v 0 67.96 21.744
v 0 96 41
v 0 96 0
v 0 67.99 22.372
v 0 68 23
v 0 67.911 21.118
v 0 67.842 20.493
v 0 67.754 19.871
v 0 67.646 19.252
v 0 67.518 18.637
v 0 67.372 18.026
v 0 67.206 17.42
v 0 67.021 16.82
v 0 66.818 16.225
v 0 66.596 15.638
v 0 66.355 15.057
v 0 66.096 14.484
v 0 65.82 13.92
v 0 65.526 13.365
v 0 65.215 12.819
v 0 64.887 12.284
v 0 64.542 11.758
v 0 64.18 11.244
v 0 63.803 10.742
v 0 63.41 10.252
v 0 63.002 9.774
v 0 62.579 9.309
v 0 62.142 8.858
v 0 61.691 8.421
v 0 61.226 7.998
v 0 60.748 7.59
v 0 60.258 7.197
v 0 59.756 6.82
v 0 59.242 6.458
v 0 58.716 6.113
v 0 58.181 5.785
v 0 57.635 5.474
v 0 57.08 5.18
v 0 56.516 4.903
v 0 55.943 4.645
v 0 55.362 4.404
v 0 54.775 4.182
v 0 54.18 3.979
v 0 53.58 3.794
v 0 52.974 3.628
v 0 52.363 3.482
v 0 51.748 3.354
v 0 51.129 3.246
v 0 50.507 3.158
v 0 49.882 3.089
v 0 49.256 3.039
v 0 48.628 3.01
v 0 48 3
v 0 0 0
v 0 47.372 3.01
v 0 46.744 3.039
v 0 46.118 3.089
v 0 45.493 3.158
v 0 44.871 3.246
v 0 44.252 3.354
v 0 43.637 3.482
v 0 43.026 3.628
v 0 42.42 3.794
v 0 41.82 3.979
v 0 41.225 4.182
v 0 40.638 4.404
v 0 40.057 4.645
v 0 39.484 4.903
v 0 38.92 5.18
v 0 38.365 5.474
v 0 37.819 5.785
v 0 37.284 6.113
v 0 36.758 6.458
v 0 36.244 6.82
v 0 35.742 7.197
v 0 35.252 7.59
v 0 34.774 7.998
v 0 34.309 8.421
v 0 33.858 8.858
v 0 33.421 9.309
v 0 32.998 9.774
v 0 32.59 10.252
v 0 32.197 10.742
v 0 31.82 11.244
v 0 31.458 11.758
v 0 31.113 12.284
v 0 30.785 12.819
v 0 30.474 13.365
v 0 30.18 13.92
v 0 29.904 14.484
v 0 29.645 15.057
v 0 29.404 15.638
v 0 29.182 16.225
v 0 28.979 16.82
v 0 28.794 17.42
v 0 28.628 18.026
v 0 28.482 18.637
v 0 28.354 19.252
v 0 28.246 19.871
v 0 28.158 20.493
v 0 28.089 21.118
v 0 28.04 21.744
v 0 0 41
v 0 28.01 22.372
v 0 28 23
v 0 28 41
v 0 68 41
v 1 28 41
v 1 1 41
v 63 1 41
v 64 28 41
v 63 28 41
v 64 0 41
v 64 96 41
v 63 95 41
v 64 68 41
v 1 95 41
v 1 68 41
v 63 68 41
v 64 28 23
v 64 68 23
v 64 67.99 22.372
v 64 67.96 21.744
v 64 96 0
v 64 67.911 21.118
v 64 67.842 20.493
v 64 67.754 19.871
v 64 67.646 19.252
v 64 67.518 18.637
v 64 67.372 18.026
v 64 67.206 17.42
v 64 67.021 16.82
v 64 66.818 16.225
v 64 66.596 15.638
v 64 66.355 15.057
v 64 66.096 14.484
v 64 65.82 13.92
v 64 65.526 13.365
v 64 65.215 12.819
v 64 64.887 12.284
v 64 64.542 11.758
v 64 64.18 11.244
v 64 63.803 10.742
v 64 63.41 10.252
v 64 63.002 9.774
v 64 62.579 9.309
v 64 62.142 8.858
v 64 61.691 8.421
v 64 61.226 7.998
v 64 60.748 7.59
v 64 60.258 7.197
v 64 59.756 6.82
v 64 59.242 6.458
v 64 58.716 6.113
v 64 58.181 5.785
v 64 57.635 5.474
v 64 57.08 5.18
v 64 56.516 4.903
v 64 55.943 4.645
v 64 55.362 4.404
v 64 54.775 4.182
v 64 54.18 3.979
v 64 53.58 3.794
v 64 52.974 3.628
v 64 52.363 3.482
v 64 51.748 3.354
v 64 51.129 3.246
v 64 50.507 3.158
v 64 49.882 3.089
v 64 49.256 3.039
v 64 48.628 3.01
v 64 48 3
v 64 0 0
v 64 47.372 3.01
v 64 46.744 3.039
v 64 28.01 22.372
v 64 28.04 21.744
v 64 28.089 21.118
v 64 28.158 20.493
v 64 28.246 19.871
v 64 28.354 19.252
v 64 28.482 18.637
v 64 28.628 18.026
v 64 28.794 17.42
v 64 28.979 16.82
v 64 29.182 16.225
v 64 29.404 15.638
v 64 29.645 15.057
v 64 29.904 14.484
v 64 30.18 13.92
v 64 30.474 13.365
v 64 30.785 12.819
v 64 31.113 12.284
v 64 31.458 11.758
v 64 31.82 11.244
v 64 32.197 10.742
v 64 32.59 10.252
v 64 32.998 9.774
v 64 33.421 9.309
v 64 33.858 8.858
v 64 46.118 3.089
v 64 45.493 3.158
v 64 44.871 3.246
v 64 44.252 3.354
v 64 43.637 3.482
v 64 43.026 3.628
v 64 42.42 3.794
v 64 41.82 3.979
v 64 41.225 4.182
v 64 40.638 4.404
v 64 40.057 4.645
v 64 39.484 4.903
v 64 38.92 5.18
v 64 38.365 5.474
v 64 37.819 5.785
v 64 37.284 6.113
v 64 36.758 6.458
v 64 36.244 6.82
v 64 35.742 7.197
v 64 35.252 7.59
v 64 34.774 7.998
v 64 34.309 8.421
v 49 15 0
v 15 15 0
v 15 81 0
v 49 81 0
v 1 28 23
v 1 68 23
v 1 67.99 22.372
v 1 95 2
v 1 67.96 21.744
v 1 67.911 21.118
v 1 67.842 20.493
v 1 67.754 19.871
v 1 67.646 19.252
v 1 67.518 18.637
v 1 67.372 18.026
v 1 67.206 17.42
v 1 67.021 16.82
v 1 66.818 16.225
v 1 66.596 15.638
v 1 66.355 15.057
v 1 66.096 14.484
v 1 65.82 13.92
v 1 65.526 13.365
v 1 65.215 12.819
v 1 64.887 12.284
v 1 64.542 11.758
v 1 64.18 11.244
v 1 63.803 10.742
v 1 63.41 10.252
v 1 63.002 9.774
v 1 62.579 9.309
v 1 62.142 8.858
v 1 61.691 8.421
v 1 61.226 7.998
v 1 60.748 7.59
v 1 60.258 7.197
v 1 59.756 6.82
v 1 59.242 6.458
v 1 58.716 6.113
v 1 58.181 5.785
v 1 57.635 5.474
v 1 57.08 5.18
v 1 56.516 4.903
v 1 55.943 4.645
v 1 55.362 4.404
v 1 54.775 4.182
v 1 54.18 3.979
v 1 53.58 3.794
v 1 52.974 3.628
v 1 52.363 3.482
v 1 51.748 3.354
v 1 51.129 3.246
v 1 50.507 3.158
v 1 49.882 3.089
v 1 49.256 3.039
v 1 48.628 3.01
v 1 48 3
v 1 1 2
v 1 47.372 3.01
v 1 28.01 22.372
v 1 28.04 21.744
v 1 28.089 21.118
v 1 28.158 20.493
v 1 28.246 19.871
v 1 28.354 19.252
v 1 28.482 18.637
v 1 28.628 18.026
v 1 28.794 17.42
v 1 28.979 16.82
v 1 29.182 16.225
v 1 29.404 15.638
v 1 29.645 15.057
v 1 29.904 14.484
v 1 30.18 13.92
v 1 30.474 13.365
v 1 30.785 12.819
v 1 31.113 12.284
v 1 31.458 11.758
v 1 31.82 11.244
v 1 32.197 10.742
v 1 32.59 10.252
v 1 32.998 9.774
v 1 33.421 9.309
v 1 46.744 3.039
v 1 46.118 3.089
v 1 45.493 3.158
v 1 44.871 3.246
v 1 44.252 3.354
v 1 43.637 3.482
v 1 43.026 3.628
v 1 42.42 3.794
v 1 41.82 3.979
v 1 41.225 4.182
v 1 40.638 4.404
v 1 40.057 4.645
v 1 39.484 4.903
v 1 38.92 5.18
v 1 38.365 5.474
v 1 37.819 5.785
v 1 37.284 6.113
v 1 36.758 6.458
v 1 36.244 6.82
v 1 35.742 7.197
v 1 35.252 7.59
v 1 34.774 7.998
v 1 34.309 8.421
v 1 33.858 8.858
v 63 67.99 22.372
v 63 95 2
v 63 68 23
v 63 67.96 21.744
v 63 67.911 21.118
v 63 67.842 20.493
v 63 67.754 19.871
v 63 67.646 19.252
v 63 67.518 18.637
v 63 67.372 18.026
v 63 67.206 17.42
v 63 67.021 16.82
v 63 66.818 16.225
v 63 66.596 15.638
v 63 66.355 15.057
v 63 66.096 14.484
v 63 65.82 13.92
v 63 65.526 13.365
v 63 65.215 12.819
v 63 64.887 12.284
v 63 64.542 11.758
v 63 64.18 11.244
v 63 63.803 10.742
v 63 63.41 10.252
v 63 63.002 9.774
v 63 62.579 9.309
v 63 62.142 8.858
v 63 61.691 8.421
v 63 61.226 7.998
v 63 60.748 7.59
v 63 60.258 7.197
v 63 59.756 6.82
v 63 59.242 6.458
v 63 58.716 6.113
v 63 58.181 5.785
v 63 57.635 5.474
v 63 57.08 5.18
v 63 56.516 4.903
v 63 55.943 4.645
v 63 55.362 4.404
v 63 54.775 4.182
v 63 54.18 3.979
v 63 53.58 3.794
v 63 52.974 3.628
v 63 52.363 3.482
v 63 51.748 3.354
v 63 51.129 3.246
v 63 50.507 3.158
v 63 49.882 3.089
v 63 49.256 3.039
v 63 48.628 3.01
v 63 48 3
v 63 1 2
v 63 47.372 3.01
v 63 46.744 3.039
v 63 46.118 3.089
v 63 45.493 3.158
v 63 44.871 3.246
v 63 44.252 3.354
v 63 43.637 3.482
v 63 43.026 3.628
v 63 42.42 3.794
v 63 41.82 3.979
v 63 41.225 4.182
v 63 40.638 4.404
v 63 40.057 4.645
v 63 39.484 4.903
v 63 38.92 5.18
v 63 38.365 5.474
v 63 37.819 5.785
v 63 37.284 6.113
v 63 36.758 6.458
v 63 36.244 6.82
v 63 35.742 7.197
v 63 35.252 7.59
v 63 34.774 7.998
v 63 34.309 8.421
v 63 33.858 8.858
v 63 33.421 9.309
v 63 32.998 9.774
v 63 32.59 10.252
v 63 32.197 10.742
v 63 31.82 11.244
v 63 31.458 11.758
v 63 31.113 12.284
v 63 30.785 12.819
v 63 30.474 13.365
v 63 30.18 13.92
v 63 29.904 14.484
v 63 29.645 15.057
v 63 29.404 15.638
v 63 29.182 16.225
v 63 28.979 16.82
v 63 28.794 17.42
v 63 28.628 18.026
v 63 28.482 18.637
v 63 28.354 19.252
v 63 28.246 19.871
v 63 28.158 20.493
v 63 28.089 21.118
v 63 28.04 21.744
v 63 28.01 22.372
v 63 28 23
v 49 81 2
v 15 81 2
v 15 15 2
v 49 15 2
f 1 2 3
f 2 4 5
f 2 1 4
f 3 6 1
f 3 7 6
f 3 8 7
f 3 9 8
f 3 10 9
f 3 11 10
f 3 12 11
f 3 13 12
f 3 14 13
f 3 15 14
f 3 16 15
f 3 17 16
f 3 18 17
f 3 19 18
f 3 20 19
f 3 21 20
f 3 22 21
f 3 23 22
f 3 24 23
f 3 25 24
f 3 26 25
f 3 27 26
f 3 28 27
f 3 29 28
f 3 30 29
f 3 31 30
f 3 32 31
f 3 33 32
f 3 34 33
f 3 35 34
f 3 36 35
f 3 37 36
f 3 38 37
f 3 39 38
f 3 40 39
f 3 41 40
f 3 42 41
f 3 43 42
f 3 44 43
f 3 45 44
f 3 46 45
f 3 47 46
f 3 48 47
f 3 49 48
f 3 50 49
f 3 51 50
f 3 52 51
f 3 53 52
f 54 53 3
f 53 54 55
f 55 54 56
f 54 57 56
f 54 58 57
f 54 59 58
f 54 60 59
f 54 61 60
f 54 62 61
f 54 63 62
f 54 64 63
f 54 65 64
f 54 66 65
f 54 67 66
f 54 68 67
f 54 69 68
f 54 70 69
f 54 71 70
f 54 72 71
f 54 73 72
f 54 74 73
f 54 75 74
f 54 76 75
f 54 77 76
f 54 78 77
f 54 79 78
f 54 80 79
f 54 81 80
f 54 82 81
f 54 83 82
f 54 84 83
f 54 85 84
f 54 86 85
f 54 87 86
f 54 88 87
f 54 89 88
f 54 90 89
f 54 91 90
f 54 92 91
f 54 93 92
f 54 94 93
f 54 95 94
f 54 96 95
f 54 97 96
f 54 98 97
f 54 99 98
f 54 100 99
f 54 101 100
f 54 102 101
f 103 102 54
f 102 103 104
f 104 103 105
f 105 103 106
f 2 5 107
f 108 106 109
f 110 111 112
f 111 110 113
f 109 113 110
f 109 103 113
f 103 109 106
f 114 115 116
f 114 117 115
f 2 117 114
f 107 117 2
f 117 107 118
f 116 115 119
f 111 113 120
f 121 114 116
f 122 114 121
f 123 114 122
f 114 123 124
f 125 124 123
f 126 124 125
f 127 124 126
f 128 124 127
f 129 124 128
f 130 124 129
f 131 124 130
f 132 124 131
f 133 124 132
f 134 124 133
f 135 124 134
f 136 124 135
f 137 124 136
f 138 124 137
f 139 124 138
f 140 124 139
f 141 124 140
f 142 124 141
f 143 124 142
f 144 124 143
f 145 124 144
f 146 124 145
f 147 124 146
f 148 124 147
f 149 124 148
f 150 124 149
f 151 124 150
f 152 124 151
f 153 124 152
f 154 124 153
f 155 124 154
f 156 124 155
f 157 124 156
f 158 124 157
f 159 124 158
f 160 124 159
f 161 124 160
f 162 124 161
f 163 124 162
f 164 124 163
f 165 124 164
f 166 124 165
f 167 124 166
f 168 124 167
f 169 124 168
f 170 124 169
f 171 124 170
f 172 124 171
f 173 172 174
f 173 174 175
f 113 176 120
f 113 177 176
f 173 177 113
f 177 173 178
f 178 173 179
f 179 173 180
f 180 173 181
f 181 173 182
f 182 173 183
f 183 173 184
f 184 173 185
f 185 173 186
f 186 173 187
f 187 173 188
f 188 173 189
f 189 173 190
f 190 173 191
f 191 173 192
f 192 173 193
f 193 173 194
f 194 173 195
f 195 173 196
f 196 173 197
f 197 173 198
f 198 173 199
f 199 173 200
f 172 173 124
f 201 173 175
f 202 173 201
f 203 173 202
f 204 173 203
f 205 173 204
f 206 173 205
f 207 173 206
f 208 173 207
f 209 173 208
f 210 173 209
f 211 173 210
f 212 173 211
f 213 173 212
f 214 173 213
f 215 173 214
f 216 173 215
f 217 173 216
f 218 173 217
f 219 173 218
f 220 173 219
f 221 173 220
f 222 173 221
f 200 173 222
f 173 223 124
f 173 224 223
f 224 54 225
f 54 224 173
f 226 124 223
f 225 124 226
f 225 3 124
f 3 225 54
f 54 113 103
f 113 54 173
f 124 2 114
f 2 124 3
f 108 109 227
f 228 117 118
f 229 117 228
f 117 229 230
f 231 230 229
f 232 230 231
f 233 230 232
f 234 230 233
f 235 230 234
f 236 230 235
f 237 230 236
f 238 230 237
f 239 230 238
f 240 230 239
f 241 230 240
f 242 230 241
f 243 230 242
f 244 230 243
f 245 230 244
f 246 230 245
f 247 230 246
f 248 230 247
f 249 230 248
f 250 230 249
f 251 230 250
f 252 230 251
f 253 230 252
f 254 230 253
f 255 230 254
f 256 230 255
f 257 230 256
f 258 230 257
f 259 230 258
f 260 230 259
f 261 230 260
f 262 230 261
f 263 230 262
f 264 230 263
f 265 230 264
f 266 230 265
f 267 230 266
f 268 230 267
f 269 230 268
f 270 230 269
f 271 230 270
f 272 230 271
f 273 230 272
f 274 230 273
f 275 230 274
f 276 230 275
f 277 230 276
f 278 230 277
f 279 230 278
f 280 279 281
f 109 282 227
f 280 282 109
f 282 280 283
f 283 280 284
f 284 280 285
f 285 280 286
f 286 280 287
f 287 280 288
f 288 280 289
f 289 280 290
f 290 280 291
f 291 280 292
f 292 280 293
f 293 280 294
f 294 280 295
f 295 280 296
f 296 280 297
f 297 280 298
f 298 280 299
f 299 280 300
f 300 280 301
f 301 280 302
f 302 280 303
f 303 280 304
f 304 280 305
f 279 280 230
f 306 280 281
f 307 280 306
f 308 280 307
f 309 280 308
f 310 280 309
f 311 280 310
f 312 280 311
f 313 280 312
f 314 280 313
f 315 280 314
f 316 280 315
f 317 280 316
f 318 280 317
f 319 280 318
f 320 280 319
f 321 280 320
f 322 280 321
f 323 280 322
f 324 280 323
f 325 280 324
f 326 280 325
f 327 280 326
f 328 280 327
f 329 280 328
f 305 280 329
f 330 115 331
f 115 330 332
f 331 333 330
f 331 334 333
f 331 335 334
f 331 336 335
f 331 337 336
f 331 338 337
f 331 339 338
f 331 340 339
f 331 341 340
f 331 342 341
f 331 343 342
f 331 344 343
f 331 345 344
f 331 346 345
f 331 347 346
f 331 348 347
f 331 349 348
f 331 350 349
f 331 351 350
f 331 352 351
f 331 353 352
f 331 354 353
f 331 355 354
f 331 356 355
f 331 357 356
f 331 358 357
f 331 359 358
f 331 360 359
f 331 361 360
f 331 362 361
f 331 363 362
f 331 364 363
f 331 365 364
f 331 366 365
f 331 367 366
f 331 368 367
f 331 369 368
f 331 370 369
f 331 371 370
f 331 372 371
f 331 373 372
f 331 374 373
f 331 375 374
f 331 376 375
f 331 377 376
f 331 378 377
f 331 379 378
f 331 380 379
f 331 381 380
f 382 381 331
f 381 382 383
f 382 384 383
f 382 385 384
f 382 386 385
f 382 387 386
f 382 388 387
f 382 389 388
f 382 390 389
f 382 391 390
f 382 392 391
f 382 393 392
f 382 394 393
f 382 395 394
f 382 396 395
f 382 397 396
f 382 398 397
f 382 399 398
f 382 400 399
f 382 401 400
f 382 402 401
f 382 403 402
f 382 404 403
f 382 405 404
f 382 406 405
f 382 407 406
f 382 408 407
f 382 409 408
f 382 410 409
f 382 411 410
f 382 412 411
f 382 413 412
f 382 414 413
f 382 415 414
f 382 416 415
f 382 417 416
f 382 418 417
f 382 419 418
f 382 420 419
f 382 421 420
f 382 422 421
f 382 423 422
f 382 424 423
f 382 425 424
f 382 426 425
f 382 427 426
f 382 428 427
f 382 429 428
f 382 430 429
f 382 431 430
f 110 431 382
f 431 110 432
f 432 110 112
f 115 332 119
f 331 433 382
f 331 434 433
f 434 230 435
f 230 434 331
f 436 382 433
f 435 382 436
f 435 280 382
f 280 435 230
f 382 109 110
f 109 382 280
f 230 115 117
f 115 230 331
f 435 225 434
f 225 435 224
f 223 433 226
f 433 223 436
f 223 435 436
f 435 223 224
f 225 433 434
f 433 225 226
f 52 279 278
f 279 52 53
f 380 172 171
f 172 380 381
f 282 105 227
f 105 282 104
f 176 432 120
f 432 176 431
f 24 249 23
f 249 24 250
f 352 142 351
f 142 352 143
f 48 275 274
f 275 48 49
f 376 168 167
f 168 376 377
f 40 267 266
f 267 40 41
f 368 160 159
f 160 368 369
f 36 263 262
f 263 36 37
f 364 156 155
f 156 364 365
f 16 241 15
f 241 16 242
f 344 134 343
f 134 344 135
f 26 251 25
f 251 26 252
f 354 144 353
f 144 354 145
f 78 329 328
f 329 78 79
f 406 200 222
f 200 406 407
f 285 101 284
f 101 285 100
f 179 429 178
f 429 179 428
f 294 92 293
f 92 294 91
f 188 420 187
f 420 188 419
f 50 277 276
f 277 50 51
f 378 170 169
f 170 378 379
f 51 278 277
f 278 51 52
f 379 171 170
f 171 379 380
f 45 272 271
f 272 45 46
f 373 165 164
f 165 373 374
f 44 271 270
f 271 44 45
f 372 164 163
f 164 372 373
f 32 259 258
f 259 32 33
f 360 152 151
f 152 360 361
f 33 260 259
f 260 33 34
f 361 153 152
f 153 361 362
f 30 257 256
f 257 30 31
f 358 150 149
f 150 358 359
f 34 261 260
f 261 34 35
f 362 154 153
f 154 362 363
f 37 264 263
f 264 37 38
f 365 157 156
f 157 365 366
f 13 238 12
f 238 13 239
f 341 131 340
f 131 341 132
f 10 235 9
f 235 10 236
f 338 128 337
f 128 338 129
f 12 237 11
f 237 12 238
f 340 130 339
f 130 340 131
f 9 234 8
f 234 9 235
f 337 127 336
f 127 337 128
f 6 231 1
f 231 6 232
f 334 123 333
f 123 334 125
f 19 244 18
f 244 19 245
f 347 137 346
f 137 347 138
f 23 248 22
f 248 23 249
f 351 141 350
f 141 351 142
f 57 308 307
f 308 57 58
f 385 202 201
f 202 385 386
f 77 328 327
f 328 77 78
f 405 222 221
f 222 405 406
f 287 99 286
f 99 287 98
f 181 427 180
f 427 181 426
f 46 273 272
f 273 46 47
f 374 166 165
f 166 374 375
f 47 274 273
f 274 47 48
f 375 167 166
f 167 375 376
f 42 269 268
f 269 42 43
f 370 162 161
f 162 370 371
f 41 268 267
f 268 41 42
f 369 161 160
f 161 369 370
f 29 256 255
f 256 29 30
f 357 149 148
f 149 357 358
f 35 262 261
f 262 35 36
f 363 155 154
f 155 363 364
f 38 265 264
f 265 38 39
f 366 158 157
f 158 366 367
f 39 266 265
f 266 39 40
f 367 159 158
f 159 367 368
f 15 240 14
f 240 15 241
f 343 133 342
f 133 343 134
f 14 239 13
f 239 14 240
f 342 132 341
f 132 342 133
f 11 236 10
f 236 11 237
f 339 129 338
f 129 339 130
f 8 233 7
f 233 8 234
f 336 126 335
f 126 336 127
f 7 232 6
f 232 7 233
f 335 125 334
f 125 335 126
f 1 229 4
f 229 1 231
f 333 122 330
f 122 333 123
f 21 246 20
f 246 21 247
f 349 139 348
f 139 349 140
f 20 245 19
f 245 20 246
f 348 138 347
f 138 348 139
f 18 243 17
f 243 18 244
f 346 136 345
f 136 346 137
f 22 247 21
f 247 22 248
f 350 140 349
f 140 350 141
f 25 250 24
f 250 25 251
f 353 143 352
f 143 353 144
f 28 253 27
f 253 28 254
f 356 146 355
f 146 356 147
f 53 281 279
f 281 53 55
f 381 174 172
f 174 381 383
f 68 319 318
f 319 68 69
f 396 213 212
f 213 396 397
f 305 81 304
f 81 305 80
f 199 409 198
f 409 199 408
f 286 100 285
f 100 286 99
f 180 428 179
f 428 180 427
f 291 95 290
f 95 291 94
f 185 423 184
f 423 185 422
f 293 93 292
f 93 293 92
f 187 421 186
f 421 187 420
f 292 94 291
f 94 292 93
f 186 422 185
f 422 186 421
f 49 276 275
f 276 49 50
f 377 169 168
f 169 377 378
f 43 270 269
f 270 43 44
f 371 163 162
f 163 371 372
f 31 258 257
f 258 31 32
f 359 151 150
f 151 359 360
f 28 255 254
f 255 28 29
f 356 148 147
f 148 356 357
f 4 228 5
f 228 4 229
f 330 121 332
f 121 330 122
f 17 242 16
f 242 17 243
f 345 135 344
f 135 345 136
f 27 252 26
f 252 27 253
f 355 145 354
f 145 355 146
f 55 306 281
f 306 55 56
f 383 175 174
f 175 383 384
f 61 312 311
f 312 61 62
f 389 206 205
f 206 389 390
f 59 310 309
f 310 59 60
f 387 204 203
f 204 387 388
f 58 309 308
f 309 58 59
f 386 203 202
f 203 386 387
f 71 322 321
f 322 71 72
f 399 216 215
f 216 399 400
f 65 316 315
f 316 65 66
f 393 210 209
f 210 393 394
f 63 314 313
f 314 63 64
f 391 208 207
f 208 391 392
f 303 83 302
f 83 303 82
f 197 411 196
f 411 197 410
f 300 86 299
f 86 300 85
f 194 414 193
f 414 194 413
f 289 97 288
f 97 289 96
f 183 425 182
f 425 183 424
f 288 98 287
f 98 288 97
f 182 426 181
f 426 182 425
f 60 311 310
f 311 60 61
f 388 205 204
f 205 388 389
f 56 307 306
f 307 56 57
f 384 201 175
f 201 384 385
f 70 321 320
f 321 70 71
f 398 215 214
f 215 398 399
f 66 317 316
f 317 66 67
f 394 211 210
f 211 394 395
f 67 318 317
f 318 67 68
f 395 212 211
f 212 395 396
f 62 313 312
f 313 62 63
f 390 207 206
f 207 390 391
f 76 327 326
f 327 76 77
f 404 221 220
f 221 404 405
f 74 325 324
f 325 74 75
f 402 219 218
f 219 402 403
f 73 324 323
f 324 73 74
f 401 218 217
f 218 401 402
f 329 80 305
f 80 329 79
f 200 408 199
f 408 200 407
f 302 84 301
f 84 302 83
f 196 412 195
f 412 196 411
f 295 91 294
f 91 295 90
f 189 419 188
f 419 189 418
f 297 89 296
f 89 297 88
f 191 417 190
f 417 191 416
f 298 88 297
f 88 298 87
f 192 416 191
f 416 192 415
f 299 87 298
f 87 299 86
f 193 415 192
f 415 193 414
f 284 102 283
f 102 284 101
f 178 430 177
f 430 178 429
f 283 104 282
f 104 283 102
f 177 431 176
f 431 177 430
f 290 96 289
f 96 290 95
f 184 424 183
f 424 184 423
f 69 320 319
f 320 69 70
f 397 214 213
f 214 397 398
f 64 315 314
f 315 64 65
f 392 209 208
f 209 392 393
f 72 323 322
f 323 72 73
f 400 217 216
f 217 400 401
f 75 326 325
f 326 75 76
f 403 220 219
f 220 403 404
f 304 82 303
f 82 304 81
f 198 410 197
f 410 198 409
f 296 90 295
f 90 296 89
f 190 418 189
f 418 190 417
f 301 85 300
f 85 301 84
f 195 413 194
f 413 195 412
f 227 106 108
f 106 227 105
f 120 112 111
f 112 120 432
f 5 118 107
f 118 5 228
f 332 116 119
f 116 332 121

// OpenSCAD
$fn=200;

THICK = 1;

CARD_L = 91;
CARD_W = 59;
CARD_STACK = 36;

STUMP = 3;
MARGIN = 15;

BOX_W = CARD_W + (THICK * 2) + 3;
BOX_L = CARD_L + (THICK * 2) + 3;
BOX_H = CARD_STACK + (THICK * 2) + STUMP;

difference() {
    cube(size = [
        BOX_W,
        BOX_L, 
        BOX_H]);

    translate([
        THICK, 
        THICK, 
        BOX_H - CARD_STACK - STUMP]) {
            
        cube(size = [
            CARD_W + 3,
            CARD_L + 3,
            CARD_STACK + STUMP + 1]);
    }

    translate([
        MARGIN,
        MARGIN,
        -1]) {

        cube(size = [
            BOX_W - (MARGIN * 2),
            BOX_L - (MARGIN * 2),
            10]);
    }


    translate([
        -1,
        BOX_L / 2,
        20 + STUMP]) {

        rotate([0, 90, 0]) {
            cylinder(
                h = 1000,
                r = 20);
        }
    }

    translate([
        -1, 
        (BOX_L / 2) - 20, 
        20 + STUMP]) {
            
        cube(size = [
            150,
            40,
            80]);
    }

}
